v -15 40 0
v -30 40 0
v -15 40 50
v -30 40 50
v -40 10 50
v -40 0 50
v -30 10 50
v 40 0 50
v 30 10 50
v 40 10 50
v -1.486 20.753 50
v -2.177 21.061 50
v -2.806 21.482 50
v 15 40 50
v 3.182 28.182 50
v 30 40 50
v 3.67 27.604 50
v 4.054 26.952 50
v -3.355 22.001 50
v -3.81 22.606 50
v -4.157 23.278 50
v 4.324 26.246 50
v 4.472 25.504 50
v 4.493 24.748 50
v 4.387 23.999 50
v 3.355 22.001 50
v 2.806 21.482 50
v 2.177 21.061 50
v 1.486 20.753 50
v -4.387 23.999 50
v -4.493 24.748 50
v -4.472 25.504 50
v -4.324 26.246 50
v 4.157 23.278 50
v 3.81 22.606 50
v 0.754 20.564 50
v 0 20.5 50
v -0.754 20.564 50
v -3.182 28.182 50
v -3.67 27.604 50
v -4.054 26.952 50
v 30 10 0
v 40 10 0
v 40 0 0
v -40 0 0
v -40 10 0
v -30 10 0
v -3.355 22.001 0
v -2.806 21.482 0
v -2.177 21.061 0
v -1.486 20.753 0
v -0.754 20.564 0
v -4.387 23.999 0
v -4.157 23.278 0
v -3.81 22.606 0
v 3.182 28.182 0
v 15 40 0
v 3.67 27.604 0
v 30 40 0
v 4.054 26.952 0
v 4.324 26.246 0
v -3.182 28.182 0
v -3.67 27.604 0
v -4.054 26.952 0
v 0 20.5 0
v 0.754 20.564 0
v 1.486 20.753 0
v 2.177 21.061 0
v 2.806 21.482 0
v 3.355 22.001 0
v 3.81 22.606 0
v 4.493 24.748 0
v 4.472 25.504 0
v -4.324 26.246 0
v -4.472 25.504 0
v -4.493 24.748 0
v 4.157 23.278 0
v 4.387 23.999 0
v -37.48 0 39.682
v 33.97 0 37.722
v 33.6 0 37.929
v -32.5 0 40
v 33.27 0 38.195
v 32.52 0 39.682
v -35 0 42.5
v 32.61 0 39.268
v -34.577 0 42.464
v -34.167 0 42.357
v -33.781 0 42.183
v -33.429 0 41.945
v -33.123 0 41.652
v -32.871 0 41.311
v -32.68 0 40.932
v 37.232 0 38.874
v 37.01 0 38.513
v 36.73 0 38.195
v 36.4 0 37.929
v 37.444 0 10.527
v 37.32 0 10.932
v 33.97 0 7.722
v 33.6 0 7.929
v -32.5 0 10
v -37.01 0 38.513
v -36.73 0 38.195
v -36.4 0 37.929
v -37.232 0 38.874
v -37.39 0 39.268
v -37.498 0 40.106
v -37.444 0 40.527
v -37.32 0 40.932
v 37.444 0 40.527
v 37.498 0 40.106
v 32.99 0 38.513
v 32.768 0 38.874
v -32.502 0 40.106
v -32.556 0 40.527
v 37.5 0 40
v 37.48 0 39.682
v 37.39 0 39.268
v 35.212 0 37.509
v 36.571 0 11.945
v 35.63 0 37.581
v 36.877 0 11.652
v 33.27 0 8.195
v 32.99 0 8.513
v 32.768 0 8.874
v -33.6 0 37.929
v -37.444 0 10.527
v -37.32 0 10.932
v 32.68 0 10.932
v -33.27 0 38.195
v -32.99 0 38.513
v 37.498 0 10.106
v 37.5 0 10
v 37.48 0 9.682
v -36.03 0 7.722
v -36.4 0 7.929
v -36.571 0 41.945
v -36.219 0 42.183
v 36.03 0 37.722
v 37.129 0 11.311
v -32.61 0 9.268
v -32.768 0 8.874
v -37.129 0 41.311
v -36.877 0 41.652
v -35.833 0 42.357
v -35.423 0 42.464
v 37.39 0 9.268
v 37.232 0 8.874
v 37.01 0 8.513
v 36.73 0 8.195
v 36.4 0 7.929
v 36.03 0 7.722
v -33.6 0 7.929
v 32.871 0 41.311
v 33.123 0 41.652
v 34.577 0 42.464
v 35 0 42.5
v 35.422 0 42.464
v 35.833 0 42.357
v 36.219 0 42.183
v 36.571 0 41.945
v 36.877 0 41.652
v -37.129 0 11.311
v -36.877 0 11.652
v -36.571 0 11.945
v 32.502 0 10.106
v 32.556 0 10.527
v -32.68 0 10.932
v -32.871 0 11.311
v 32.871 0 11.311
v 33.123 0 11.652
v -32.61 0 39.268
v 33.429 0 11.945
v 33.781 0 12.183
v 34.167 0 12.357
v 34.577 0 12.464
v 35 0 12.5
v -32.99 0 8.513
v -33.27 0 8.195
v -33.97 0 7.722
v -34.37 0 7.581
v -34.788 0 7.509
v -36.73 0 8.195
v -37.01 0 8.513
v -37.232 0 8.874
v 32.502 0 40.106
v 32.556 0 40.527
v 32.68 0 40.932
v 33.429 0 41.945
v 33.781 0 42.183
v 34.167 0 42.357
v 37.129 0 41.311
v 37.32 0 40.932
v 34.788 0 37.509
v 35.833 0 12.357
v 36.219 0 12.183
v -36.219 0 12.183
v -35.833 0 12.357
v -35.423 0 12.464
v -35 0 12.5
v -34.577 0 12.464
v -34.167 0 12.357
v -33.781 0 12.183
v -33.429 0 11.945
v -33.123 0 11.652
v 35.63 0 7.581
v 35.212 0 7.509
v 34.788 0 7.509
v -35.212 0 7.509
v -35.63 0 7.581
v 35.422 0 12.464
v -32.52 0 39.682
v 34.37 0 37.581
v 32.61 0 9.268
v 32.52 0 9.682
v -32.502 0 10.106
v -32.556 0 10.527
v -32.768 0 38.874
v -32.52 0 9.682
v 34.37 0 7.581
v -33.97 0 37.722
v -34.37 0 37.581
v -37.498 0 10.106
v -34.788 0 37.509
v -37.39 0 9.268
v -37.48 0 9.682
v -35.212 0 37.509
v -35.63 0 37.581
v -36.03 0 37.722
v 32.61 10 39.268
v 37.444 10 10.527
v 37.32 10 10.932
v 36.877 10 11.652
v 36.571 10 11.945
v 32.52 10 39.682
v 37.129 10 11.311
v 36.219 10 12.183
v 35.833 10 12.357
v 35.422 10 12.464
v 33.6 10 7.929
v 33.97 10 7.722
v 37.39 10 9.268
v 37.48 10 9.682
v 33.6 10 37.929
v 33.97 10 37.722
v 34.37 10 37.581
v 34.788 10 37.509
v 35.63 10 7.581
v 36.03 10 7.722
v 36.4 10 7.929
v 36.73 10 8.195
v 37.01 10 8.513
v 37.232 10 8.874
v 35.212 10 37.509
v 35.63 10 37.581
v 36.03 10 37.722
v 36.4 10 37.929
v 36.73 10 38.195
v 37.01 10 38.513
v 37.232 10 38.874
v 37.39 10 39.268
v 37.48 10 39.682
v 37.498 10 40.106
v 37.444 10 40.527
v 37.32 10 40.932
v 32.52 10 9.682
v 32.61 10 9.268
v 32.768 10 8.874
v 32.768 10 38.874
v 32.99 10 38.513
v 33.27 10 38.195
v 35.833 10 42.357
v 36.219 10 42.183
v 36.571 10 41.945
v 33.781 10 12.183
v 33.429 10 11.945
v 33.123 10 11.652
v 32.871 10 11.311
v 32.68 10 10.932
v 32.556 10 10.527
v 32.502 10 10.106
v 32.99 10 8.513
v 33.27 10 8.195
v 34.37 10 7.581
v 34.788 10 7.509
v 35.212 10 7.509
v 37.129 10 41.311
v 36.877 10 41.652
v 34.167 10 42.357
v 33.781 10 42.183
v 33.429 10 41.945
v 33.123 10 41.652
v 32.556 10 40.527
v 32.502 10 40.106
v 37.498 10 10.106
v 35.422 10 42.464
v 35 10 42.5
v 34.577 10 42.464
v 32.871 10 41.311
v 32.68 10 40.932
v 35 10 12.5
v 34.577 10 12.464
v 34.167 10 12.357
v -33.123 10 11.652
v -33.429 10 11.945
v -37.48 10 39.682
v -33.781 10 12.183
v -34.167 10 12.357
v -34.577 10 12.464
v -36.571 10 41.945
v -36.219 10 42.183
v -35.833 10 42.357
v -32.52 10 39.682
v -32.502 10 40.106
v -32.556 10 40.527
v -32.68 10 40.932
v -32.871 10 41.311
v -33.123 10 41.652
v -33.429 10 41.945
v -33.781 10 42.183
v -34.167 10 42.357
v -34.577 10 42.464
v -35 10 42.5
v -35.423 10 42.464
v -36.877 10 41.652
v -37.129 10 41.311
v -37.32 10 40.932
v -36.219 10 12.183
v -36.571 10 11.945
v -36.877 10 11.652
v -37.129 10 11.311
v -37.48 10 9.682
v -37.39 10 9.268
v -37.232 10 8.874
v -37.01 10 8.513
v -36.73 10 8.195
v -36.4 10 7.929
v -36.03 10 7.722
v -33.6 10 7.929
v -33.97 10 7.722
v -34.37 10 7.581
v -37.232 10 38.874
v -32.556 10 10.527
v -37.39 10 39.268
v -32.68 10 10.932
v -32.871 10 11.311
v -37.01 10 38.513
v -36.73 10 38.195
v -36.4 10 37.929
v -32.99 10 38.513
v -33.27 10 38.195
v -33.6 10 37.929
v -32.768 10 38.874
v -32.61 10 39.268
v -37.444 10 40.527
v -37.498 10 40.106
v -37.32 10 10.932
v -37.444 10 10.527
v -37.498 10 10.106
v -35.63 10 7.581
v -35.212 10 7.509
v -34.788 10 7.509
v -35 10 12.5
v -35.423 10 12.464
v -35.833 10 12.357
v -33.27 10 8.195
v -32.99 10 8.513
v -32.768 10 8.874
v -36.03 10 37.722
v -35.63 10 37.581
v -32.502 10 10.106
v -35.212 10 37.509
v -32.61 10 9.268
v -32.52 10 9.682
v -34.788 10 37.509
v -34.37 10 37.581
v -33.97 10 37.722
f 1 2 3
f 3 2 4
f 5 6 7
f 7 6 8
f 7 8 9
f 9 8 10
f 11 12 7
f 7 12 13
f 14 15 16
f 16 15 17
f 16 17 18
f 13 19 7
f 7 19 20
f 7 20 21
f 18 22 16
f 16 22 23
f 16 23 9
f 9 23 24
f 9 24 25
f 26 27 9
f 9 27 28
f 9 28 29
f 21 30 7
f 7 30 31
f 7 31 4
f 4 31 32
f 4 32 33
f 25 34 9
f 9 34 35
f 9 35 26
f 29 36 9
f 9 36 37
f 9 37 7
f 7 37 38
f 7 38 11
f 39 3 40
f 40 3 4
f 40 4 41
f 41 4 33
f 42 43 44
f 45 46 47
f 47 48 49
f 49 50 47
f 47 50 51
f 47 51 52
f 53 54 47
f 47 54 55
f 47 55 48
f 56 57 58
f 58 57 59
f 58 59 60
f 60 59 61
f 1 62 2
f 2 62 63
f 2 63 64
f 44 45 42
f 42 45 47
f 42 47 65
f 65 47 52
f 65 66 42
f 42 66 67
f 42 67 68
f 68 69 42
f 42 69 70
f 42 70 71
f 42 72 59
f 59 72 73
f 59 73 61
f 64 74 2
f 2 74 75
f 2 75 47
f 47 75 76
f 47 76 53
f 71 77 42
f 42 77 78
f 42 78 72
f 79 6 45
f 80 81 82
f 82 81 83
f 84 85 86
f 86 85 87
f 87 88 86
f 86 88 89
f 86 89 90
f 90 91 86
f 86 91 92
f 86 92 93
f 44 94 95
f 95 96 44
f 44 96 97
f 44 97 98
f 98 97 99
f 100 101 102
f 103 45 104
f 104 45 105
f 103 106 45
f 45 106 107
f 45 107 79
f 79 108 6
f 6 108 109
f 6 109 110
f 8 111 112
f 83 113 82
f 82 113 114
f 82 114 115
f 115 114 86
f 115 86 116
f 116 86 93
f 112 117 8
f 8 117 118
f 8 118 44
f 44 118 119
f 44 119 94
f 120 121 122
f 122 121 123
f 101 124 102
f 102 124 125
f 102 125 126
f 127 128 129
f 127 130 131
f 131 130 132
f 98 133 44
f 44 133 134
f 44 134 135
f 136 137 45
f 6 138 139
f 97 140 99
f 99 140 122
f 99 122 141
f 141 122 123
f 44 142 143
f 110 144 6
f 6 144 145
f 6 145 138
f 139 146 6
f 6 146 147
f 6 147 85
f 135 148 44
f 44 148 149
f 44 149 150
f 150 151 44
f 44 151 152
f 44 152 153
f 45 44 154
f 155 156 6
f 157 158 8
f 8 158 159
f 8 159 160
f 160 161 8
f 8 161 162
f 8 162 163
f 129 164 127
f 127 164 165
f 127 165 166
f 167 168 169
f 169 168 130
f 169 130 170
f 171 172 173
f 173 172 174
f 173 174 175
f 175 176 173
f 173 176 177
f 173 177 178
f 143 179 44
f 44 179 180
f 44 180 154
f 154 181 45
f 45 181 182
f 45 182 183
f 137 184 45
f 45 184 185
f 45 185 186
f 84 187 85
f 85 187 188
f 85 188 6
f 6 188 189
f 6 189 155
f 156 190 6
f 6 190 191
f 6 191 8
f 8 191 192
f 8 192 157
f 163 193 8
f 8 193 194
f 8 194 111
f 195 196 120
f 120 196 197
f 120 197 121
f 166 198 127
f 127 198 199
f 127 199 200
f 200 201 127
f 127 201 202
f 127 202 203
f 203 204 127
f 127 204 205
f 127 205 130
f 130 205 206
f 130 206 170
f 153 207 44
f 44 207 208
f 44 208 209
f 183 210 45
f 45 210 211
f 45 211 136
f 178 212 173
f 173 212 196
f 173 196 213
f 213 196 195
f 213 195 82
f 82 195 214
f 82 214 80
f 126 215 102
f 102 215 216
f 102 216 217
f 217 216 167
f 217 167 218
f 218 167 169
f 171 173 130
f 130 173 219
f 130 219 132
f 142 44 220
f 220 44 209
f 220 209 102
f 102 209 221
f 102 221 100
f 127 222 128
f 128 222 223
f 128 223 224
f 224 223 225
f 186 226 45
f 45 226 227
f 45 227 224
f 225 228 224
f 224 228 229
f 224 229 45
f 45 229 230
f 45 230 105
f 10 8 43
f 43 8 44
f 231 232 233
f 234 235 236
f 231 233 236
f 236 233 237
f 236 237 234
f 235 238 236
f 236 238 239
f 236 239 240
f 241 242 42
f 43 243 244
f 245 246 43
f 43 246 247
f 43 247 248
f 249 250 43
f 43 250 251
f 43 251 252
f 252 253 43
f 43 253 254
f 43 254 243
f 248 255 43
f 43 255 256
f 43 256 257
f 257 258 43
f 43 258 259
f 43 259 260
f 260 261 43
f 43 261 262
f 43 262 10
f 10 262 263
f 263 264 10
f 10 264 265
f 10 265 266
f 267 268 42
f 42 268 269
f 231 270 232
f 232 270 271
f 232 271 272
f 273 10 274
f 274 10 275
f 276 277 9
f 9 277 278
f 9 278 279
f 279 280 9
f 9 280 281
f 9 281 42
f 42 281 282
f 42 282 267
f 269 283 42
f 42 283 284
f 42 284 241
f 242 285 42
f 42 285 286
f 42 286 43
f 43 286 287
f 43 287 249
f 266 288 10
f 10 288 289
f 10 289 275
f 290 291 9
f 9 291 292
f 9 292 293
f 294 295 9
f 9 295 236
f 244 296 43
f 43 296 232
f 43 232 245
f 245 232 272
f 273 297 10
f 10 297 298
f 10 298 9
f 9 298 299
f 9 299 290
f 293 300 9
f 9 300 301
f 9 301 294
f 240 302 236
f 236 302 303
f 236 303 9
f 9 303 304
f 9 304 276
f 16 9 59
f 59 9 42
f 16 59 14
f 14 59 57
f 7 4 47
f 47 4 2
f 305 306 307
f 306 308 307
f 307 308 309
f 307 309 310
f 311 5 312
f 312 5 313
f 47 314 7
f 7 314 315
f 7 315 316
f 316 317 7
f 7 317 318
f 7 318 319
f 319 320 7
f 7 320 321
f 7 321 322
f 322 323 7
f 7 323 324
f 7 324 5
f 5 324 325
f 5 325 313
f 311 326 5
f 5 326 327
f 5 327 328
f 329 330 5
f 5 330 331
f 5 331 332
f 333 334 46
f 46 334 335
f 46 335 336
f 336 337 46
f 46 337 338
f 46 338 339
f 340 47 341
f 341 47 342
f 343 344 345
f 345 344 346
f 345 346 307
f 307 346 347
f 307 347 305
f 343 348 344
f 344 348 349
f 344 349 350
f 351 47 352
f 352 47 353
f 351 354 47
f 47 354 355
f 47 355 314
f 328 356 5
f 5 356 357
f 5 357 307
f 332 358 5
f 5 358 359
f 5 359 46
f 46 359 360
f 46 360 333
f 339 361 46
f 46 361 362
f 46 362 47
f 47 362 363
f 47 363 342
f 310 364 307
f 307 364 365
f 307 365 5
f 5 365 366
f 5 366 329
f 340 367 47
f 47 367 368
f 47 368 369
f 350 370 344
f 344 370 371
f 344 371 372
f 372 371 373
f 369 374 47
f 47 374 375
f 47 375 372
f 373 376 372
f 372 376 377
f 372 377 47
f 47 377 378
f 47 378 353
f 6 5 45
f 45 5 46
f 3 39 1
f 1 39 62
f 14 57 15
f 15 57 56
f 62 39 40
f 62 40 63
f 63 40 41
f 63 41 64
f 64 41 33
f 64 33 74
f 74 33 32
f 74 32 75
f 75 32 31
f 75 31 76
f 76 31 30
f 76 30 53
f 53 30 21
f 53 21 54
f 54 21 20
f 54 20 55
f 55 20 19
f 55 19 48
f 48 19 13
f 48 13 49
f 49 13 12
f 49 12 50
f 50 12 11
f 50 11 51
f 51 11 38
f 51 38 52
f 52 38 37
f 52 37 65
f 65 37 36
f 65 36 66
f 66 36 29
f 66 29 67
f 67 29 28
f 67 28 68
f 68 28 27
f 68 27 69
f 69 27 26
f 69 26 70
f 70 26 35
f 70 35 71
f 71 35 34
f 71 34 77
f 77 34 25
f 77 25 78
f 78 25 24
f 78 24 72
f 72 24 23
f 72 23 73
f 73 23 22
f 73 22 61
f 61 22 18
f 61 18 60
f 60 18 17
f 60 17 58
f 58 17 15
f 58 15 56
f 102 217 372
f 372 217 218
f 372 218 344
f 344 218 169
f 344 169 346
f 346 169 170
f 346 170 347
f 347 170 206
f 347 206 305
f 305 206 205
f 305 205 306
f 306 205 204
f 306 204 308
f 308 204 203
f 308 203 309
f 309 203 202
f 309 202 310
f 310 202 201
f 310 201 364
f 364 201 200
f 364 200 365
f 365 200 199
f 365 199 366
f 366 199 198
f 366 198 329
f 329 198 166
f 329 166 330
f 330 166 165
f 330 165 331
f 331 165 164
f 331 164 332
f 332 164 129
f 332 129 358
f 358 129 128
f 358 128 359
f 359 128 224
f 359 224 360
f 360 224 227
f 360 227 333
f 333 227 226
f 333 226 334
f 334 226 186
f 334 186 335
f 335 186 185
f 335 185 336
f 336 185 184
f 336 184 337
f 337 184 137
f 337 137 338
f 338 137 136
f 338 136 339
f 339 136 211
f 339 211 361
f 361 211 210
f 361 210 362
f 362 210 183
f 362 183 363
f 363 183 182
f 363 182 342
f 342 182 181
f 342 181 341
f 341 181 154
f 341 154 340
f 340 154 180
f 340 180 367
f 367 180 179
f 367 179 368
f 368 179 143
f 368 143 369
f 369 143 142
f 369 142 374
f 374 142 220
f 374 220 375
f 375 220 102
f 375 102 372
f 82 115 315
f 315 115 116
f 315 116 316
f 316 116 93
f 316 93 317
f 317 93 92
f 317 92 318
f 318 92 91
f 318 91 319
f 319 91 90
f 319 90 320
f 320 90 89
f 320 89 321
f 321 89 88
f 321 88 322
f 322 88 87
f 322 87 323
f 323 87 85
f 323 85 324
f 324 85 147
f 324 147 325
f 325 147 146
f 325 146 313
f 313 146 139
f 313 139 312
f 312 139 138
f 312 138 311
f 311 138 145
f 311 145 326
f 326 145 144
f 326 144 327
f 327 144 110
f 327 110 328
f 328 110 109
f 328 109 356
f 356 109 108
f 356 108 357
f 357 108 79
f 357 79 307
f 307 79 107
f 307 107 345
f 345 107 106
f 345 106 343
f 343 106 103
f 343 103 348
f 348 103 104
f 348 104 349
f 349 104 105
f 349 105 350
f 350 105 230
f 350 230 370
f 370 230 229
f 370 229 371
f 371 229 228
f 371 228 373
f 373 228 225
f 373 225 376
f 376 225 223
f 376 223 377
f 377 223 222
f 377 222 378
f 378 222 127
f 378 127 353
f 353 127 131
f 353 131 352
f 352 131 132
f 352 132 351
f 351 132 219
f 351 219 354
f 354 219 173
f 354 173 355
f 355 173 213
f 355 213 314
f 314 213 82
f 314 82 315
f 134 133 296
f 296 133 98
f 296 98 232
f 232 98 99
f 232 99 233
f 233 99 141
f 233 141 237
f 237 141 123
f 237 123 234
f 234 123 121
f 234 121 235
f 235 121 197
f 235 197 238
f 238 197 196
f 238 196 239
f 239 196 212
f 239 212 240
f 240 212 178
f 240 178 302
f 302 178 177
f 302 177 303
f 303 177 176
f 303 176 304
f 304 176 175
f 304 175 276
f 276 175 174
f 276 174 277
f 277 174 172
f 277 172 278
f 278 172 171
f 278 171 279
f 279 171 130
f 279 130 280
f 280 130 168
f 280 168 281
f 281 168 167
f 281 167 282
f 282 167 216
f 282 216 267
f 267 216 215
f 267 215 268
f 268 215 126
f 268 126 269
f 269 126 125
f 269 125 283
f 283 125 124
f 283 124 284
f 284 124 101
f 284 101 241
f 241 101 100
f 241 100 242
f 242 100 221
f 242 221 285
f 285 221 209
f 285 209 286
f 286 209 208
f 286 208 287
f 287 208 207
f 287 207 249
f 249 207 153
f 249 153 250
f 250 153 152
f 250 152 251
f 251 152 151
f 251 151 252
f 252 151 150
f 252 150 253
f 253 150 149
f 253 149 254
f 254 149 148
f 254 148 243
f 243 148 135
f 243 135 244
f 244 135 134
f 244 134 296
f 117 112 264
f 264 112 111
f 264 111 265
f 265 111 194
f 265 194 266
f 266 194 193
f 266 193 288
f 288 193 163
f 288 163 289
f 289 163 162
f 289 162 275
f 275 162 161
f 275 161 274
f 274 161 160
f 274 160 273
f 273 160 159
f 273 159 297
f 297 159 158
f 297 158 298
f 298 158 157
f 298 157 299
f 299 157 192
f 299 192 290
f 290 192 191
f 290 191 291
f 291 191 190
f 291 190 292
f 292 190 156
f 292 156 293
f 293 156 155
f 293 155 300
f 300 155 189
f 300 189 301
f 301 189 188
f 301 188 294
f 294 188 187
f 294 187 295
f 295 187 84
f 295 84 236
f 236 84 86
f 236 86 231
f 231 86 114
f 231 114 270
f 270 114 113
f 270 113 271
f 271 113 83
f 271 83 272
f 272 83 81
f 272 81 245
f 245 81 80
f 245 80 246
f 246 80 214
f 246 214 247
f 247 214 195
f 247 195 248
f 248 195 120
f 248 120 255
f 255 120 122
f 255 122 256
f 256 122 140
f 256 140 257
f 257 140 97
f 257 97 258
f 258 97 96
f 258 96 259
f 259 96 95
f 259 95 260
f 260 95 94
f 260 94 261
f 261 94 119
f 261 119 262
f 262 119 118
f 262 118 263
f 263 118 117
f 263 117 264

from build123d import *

# Parameters (mm, degrees)
EXTRUDE_1_DEPTH     = 50
SKETCH_5_R          = 4.5
CUT_EXTRUDE_1_DEPTH = 97
SKETCH_6_R          = 2.5
CUT_EXTRUDE_2_DEPTH = 97
SKETCH_7_R          = 2.5
CUT_EXTRUDE_3_DEPTH = 97


with BuildPart() as part:
    # 스케치4 → 보스-돌출1 (new body)
    with BuildSketch(Plane.XY):
        Polygon((40, 0), (0, 0), (-40, 0), (-40, 10), (-30, 10), (-30, 40), (30, 40), (30, 10), (40, 10), align=None)
    extrude(amount=EXTRUDE_1_DEPTH)

    # 스케치5 → 컷-돌출1 (cut)
    with BuildSketch(Plane.XY.offset(50)):
        with Locations((0, 25)):
            Circle(SKETCH_5_R)
        Polygon((0, 25), (15, 40), (-15, 40), align=None)
    extrude(amount=-CUT_EXTRUDE_1_DEPTH, mode=Mode.SUBTRACT)

    # 스케치6 → 컷-돌출2 (cut)
    with BuildSketch(Plane(origin=(0, 10, 0), x_dir=(1, 0, 0), z_dir=(0, 1, 0))):
        with Locations((-35, -10)):
            Circle(SKETCH_6_R)
        with Locations((-35, -40)):
            Circle(SKETCH_6_R)
    extrude(amount=-CUT_EXTRUDE_2_DEPTH, mode=Mode.SUBTRACT)

    # 스케치7 → 컷-돌출3 (cut)
    with BuildSketch(Plane(origin=(0, 10, 0), x_dir=(1, 0, 0), z_dir=(0, 1, 0))):
        with Locations((35, -10)):
            Circle(SKETCH_7_R)
        with Locations((35, -40)):
            Circle(SKETCH_7_R)
    extrude(amount=-CUT_EXTRUDE_3_DEPTH, mode=Mode.SUBTRACT)


solid = part.part
